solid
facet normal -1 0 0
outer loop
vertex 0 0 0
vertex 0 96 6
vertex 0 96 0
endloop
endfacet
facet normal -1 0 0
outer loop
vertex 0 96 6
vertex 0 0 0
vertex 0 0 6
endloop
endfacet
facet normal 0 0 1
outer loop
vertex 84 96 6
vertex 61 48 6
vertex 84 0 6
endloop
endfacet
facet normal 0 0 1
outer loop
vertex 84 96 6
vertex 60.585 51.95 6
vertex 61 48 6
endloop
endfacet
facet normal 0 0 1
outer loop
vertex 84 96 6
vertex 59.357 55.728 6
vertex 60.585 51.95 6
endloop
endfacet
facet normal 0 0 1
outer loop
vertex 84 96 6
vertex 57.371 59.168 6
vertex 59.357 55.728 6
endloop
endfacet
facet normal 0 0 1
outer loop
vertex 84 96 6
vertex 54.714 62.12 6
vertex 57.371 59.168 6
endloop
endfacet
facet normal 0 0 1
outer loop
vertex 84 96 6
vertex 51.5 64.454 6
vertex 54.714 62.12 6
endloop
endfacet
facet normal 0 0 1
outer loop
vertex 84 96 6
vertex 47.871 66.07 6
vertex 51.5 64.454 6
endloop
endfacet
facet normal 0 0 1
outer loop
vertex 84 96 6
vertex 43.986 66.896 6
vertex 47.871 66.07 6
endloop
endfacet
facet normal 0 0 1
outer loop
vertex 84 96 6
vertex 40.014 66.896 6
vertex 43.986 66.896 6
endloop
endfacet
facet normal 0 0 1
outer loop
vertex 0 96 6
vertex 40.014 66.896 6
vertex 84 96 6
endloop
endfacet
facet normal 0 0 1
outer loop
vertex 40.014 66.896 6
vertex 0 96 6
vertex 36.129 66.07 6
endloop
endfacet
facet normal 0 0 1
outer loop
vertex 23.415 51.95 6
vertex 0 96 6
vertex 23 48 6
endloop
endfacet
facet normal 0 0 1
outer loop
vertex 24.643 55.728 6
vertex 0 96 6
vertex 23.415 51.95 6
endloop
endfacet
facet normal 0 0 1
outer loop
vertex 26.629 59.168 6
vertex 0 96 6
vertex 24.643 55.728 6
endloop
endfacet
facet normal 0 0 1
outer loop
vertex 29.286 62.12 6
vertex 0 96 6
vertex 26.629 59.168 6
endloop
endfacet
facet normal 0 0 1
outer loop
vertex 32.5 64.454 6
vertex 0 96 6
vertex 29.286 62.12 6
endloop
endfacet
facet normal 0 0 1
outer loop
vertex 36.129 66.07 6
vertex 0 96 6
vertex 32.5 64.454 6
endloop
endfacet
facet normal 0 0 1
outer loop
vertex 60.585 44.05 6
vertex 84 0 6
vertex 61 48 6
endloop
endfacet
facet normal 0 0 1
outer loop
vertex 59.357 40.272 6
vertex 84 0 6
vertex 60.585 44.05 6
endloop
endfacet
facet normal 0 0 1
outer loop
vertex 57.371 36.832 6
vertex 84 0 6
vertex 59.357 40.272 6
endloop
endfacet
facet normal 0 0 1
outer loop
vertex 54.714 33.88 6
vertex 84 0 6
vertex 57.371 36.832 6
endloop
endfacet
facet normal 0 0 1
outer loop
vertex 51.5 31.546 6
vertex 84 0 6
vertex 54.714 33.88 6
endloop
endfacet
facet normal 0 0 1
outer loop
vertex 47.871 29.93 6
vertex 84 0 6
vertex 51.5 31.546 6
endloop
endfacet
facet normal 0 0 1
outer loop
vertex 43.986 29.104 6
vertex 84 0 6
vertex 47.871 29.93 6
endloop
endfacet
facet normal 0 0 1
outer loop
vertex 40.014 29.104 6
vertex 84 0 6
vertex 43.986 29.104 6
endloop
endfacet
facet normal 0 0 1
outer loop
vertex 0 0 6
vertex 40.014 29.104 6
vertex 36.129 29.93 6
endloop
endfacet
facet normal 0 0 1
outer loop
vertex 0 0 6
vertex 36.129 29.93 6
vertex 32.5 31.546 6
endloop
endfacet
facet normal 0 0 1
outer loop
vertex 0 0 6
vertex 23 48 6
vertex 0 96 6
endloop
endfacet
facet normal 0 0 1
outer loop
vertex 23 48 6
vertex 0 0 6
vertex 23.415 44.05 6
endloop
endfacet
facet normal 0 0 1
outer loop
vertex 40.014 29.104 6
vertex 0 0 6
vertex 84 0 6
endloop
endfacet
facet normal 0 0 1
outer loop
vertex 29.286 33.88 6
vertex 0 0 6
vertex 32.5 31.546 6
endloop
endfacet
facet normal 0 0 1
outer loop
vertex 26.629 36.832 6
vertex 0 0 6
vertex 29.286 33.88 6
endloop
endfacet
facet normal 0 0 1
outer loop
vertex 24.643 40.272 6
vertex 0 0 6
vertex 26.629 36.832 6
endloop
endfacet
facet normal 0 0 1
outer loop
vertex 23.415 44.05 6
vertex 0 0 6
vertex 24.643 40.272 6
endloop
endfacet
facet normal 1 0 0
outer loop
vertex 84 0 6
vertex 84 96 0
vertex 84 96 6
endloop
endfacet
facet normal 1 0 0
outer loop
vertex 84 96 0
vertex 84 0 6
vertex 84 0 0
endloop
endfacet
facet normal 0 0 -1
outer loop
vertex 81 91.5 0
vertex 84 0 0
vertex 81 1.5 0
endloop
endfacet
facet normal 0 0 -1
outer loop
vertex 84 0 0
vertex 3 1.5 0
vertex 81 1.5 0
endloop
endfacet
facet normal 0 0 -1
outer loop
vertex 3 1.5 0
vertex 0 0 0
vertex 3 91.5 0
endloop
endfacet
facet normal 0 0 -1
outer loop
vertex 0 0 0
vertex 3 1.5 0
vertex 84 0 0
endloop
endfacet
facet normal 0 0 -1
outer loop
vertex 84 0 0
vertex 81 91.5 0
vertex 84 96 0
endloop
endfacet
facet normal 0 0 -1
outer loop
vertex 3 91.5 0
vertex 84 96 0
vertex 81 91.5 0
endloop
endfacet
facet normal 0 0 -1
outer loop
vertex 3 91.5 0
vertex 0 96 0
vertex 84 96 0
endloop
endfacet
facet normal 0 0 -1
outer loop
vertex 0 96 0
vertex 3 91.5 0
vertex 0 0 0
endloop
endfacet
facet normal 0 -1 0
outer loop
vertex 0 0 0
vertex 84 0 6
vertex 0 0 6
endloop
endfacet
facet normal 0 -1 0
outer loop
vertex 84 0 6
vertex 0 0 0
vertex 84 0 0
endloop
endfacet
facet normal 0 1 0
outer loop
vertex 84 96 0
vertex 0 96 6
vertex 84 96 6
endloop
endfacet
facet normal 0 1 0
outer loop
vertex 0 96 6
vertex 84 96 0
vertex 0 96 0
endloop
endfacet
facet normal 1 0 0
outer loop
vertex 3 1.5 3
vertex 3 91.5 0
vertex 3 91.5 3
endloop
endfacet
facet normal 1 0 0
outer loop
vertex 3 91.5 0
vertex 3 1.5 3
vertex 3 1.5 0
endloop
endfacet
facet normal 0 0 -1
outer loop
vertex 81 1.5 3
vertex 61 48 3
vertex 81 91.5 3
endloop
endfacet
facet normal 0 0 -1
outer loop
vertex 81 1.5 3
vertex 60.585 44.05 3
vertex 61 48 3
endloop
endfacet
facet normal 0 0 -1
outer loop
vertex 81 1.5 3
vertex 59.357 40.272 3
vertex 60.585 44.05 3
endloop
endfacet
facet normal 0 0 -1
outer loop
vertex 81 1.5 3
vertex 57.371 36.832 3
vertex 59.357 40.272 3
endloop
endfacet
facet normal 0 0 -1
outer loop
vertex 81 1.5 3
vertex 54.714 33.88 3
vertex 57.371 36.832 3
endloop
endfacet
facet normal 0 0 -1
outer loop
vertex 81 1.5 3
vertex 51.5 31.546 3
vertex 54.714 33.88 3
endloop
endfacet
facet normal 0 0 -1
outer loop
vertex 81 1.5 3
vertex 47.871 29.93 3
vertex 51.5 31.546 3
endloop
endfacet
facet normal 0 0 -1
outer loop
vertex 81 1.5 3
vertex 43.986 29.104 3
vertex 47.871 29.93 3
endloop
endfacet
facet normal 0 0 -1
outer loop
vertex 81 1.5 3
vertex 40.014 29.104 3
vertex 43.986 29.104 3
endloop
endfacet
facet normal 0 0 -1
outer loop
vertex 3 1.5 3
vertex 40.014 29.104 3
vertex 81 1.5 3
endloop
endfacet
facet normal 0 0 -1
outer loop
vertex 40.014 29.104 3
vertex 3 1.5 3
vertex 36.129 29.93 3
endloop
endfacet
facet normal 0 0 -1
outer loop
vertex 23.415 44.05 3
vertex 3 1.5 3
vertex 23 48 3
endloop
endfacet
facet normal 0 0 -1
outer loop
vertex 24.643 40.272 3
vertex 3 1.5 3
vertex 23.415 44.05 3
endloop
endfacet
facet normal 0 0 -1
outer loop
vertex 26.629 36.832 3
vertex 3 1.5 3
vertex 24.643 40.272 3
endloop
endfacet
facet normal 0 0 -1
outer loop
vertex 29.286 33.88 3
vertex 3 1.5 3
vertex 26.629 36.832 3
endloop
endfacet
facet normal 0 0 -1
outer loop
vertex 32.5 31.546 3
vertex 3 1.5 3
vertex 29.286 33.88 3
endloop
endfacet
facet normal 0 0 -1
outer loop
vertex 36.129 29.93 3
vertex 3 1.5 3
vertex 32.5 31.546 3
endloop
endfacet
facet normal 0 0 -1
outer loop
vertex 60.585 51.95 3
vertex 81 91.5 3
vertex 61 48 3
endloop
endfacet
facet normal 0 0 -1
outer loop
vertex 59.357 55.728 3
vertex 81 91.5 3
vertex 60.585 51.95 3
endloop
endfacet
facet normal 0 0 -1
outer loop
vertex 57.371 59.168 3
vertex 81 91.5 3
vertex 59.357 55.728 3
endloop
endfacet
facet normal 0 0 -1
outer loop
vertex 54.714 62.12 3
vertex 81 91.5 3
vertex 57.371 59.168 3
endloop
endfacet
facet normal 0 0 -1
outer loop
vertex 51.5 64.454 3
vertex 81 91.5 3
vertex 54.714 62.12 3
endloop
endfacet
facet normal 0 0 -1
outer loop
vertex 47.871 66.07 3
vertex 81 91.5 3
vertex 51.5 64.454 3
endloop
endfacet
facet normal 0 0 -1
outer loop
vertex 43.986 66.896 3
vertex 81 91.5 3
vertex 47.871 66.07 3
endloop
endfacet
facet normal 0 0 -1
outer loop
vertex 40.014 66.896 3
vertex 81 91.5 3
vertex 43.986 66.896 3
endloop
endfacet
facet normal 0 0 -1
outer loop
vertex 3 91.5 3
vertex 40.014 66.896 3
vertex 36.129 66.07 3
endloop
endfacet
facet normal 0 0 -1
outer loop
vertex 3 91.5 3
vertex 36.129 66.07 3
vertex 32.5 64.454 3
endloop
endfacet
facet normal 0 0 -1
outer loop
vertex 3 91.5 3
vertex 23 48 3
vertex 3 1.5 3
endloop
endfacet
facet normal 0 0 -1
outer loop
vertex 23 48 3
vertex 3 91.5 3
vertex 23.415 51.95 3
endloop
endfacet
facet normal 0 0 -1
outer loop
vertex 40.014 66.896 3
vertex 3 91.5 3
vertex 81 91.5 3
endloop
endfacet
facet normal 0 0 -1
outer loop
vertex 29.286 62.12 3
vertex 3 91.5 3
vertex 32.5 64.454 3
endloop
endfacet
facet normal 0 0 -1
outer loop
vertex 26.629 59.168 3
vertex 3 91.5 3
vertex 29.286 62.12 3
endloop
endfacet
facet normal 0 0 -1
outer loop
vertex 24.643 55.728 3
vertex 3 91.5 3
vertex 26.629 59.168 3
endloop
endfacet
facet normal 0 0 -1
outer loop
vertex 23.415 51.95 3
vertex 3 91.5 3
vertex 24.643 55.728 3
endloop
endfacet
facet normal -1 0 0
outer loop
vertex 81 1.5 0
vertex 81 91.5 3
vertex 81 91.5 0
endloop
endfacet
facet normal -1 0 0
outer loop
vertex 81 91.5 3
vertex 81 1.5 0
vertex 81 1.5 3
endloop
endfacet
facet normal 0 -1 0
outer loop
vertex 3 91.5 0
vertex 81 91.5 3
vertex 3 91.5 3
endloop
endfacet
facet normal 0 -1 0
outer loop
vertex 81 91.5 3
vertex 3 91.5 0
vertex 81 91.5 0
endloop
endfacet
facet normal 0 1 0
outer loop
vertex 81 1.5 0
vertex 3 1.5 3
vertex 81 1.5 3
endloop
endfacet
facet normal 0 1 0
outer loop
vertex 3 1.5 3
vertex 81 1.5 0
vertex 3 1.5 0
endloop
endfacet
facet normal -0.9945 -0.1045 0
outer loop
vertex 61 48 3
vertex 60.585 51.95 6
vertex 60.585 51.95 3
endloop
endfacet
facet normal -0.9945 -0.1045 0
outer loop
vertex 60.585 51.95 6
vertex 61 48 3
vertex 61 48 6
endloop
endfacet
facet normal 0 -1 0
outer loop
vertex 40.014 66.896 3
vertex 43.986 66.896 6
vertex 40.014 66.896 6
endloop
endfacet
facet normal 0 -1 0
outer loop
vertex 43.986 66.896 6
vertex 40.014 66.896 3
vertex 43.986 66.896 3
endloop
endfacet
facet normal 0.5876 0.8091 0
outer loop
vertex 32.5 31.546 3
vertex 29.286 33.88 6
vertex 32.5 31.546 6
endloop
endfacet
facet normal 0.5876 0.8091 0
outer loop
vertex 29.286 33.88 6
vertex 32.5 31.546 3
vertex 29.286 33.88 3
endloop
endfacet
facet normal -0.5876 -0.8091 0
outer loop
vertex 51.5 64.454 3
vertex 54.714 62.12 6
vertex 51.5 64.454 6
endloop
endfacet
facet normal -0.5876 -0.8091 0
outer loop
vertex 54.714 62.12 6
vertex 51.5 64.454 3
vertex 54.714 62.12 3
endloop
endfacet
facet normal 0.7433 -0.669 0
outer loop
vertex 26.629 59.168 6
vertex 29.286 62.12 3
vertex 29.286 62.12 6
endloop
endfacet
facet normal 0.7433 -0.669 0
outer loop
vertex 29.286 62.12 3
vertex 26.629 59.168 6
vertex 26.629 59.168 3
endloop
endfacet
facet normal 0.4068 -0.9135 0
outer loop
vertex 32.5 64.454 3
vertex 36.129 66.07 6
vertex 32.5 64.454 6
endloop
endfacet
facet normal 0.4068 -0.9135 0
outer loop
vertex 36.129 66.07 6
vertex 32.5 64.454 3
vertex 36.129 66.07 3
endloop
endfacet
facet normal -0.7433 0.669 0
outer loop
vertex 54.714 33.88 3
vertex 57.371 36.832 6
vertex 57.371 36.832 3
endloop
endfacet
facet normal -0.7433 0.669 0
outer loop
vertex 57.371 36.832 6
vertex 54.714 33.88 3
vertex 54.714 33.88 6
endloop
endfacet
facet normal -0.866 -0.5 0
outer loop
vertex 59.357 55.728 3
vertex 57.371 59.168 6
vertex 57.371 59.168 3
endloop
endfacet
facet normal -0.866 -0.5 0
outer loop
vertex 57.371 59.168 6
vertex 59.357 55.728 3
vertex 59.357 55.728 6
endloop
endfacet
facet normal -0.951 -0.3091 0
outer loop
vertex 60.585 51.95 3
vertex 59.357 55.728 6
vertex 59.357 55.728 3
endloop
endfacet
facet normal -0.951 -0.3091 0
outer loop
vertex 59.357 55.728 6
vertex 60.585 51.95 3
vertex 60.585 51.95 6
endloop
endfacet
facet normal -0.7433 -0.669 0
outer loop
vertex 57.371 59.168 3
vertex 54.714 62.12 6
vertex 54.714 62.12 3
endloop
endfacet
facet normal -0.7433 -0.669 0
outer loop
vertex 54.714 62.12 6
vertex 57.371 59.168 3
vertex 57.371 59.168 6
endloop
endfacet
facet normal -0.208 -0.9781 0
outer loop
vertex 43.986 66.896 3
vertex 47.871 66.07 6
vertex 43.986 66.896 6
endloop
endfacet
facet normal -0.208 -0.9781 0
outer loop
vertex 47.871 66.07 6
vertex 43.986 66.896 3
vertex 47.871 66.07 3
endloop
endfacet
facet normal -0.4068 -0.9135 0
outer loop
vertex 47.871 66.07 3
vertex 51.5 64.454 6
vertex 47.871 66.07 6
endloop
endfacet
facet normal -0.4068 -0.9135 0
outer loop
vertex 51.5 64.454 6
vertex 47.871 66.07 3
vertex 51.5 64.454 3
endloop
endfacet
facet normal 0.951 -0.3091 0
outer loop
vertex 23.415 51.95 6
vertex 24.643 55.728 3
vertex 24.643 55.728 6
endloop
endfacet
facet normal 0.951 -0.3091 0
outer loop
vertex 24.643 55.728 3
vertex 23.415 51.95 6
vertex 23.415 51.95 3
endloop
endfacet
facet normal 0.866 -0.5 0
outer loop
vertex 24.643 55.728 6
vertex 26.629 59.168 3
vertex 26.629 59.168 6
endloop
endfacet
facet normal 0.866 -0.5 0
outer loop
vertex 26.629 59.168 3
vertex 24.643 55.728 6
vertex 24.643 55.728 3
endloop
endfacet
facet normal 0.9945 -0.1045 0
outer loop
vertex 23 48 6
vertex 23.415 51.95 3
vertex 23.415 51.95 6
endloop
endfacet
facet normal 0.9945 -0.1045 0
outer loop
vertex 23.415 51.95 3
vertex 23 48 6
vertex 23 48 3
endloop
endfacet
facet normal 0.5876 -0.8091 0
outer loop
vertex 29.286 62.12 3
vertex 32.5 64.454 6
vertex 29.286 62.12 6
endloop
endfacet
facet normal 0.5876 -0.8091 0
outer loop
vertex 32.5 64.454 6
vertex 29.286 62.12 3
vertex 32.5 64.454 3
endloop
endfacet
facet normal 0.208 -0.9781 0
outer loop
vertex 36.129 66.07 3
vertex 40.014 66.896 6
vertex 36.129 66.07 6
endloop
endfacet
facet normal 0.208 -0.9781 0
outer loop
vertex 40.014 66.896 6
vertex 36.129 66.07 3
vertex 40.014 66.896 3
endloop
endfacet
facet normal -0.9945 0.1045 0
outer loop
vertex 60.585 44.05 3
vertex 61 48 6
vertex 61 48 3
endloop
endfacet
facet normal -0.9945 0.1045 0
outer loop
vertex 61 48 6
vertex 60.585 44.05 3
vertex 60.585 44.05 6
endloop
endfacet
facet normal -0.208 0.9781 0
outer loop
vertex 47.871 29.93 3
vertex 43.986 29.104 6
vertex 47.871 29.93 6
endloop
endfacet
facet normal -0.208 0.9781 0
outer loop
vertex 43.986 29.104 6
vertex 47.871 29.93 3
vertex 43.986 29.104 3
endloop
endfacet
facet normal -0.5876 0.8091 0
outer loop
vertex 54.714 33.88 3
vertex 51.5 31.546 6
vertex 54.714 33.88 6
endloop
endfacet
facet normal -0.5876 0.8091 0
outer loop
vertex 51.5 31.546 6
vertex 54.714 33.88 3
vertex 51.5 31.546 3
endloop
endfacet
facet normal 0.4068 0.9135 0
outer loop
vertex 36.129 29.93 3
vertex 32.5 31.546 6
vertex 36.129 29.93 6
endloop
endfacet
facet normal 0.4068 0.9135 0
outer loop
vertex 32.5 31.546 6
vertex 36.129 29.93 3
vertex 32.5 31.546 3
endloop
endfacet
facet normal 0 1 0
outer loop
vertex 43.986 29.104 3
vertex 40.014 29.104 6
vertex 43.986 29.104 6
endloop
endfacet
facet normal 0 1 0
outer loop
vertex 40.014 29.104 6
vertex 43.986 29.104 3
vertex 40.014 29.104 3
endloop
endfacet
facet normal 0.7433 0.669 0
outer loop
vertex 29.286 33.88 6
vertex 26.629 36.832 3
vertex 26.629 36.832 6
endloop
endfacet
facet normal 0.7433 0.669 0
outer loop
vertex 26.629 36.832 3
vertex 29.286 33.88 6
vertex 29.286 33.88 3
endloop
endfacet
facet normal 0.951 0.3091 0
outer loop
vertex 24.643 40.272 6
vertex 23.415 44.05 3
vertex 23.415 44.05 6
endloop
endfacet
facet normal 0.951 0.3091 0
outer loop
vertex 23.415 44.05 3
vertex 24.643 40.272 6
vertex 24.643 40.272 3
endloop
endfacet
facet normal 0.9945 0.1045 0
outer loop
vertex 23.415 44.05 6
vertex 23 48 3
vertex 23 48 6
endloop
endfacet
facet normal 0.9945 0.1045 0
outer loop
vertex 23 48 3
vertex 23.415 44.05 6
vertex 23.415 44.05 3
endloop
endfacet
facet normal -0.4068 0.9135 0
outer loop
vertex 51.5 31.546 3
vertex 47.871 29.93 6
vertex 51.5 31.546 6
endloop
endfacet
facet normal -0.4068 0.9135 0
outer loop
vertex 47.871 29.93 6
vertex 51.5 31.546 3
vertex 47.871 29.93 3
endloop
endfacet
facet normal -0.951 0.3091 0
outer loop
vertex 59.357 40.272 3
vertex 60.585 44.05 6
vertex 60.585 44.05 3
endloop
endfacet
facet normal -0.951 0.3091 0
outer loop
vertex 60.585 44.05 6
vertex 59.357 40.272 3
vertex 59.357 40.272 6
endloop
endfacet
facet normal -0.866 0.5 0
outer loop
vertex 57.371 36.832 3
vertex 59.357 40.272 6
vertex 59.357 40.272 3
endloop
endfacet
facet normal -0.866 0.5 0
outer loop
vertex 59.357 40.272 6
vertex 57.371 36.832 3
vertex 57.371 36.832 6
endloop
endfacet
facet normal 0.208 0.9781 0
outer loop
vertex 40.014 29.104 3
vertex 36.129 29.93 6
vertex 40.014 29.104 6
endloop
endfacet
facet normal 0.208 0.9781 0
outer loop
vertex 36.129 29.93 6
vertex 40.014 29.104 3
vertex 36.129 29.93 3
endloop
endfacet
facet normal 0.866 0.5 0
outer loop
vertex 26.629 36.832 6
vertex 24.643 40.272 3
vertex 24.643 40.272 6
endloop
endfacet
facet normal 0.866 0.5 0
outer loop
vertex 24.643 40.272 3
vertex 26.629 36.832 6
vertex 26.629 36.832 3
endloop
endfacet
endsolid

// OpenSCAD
// file: ../../../../neje-dk-8-kz-bed.scad
module nejeDk8KzBed()
{
	xLength = nejeDk8KzBed_xLength();
	yLength = nejeDk8KzBed_yLength();
	zLength = nejeDk8KzBed_zLength();

	cube([xLength, yLength, zLength]);
}

/** Support functions and modules follow. **/

function nejeDk8KzBed_xLength() = 78;

function nejeDk8KzBed_yLength() = 90;

function nejeDk8KzBed_zLength() = 3;
// file: ../../../../../laser-engraver-jig.scad
module laserEngraverJig(bed_xLength, bed_yLength, bed_zLength,
						xLength, yLength, zLength)
{
	laserEngraverJig_base(bed_xLength, bed_yLength, bed_zLength,
						  xLength, yLength, zLength);
}

/** Support functions and modules follow. **/

module laserEngraverJig_base(bed_xLength, bed_yLength, bed_zLength,
							 xLength, yLength, zLength)
{
	difference()
	{
		// main block
		cube([xLength, yLength, zLength]);

		// bed cutout
		xTranslate = (xLength - bed_xLength) / 2.0;
		zTranslate = (zLength - bed_zLength) / 2.0;
		color("blue")
		translate([xTranslate, zTranslate, 0])
		cube([bed_xLength, bed_yLength, bed_zLength]);
	}
}
// file: ../../neje-laser-engraver-disk-jig.scad
use <../../../laser-engraver-jig.scad>

use <../../neje-dk-8-kz-bed.scad>

module nejeLaserEngraverDiskJig()
{
	bed_xLength = nejeDk8KzBed_xLength();
	bed_yLength = nejeDk8KzBed_yLength();
	bed_zLength = nejeDk8KzBed_zLength();

	xyIncrease = 3 * 2;

	xLength = nejeDk8KzBed_xLength() + xyIncrease;
	yLength = nejeDk8KzBed_yLength() + xyIncrease;
	zLength = nejeDk8KzBed_zLength() * 2;

	difference()
	{
		nejeLaserEngraverDiskJig_block(bed_xLength, bed_yLength, bed_zLength,
						 			   xLength, yLength, zLength);

		nejeLaserEngraverDiskJig_cutout(xLength, yLength, zLength);
	}
}

/** Support functions and modules follow. **/

module nejeLaserEngraverDiskJig_block(bed_xLength, bed_yLength, bed_zLength,
				 					  xLength, yLength, zLength)
{
	laserEngraverJig(bed_xLength, bed_yLength, bed_zLength,
					 xLength, yLength, zLength);
}

module nejeLaserEngraverDiskJig_cutout(xLength, yLength, zLength)
{
	radius = 38 / 2.0;
	xTranslate = xLength / 2.0;
	yTranslate = yLength / 2.0;
	translate([xTranslate, yTranslate, -0.01])
	cylinder(r=radius, h=7);//, center=true);
}
// main file
use <../../neje-laser-engraver-disk-jig.scad>

nejeLaserEngraverDiskJig();
